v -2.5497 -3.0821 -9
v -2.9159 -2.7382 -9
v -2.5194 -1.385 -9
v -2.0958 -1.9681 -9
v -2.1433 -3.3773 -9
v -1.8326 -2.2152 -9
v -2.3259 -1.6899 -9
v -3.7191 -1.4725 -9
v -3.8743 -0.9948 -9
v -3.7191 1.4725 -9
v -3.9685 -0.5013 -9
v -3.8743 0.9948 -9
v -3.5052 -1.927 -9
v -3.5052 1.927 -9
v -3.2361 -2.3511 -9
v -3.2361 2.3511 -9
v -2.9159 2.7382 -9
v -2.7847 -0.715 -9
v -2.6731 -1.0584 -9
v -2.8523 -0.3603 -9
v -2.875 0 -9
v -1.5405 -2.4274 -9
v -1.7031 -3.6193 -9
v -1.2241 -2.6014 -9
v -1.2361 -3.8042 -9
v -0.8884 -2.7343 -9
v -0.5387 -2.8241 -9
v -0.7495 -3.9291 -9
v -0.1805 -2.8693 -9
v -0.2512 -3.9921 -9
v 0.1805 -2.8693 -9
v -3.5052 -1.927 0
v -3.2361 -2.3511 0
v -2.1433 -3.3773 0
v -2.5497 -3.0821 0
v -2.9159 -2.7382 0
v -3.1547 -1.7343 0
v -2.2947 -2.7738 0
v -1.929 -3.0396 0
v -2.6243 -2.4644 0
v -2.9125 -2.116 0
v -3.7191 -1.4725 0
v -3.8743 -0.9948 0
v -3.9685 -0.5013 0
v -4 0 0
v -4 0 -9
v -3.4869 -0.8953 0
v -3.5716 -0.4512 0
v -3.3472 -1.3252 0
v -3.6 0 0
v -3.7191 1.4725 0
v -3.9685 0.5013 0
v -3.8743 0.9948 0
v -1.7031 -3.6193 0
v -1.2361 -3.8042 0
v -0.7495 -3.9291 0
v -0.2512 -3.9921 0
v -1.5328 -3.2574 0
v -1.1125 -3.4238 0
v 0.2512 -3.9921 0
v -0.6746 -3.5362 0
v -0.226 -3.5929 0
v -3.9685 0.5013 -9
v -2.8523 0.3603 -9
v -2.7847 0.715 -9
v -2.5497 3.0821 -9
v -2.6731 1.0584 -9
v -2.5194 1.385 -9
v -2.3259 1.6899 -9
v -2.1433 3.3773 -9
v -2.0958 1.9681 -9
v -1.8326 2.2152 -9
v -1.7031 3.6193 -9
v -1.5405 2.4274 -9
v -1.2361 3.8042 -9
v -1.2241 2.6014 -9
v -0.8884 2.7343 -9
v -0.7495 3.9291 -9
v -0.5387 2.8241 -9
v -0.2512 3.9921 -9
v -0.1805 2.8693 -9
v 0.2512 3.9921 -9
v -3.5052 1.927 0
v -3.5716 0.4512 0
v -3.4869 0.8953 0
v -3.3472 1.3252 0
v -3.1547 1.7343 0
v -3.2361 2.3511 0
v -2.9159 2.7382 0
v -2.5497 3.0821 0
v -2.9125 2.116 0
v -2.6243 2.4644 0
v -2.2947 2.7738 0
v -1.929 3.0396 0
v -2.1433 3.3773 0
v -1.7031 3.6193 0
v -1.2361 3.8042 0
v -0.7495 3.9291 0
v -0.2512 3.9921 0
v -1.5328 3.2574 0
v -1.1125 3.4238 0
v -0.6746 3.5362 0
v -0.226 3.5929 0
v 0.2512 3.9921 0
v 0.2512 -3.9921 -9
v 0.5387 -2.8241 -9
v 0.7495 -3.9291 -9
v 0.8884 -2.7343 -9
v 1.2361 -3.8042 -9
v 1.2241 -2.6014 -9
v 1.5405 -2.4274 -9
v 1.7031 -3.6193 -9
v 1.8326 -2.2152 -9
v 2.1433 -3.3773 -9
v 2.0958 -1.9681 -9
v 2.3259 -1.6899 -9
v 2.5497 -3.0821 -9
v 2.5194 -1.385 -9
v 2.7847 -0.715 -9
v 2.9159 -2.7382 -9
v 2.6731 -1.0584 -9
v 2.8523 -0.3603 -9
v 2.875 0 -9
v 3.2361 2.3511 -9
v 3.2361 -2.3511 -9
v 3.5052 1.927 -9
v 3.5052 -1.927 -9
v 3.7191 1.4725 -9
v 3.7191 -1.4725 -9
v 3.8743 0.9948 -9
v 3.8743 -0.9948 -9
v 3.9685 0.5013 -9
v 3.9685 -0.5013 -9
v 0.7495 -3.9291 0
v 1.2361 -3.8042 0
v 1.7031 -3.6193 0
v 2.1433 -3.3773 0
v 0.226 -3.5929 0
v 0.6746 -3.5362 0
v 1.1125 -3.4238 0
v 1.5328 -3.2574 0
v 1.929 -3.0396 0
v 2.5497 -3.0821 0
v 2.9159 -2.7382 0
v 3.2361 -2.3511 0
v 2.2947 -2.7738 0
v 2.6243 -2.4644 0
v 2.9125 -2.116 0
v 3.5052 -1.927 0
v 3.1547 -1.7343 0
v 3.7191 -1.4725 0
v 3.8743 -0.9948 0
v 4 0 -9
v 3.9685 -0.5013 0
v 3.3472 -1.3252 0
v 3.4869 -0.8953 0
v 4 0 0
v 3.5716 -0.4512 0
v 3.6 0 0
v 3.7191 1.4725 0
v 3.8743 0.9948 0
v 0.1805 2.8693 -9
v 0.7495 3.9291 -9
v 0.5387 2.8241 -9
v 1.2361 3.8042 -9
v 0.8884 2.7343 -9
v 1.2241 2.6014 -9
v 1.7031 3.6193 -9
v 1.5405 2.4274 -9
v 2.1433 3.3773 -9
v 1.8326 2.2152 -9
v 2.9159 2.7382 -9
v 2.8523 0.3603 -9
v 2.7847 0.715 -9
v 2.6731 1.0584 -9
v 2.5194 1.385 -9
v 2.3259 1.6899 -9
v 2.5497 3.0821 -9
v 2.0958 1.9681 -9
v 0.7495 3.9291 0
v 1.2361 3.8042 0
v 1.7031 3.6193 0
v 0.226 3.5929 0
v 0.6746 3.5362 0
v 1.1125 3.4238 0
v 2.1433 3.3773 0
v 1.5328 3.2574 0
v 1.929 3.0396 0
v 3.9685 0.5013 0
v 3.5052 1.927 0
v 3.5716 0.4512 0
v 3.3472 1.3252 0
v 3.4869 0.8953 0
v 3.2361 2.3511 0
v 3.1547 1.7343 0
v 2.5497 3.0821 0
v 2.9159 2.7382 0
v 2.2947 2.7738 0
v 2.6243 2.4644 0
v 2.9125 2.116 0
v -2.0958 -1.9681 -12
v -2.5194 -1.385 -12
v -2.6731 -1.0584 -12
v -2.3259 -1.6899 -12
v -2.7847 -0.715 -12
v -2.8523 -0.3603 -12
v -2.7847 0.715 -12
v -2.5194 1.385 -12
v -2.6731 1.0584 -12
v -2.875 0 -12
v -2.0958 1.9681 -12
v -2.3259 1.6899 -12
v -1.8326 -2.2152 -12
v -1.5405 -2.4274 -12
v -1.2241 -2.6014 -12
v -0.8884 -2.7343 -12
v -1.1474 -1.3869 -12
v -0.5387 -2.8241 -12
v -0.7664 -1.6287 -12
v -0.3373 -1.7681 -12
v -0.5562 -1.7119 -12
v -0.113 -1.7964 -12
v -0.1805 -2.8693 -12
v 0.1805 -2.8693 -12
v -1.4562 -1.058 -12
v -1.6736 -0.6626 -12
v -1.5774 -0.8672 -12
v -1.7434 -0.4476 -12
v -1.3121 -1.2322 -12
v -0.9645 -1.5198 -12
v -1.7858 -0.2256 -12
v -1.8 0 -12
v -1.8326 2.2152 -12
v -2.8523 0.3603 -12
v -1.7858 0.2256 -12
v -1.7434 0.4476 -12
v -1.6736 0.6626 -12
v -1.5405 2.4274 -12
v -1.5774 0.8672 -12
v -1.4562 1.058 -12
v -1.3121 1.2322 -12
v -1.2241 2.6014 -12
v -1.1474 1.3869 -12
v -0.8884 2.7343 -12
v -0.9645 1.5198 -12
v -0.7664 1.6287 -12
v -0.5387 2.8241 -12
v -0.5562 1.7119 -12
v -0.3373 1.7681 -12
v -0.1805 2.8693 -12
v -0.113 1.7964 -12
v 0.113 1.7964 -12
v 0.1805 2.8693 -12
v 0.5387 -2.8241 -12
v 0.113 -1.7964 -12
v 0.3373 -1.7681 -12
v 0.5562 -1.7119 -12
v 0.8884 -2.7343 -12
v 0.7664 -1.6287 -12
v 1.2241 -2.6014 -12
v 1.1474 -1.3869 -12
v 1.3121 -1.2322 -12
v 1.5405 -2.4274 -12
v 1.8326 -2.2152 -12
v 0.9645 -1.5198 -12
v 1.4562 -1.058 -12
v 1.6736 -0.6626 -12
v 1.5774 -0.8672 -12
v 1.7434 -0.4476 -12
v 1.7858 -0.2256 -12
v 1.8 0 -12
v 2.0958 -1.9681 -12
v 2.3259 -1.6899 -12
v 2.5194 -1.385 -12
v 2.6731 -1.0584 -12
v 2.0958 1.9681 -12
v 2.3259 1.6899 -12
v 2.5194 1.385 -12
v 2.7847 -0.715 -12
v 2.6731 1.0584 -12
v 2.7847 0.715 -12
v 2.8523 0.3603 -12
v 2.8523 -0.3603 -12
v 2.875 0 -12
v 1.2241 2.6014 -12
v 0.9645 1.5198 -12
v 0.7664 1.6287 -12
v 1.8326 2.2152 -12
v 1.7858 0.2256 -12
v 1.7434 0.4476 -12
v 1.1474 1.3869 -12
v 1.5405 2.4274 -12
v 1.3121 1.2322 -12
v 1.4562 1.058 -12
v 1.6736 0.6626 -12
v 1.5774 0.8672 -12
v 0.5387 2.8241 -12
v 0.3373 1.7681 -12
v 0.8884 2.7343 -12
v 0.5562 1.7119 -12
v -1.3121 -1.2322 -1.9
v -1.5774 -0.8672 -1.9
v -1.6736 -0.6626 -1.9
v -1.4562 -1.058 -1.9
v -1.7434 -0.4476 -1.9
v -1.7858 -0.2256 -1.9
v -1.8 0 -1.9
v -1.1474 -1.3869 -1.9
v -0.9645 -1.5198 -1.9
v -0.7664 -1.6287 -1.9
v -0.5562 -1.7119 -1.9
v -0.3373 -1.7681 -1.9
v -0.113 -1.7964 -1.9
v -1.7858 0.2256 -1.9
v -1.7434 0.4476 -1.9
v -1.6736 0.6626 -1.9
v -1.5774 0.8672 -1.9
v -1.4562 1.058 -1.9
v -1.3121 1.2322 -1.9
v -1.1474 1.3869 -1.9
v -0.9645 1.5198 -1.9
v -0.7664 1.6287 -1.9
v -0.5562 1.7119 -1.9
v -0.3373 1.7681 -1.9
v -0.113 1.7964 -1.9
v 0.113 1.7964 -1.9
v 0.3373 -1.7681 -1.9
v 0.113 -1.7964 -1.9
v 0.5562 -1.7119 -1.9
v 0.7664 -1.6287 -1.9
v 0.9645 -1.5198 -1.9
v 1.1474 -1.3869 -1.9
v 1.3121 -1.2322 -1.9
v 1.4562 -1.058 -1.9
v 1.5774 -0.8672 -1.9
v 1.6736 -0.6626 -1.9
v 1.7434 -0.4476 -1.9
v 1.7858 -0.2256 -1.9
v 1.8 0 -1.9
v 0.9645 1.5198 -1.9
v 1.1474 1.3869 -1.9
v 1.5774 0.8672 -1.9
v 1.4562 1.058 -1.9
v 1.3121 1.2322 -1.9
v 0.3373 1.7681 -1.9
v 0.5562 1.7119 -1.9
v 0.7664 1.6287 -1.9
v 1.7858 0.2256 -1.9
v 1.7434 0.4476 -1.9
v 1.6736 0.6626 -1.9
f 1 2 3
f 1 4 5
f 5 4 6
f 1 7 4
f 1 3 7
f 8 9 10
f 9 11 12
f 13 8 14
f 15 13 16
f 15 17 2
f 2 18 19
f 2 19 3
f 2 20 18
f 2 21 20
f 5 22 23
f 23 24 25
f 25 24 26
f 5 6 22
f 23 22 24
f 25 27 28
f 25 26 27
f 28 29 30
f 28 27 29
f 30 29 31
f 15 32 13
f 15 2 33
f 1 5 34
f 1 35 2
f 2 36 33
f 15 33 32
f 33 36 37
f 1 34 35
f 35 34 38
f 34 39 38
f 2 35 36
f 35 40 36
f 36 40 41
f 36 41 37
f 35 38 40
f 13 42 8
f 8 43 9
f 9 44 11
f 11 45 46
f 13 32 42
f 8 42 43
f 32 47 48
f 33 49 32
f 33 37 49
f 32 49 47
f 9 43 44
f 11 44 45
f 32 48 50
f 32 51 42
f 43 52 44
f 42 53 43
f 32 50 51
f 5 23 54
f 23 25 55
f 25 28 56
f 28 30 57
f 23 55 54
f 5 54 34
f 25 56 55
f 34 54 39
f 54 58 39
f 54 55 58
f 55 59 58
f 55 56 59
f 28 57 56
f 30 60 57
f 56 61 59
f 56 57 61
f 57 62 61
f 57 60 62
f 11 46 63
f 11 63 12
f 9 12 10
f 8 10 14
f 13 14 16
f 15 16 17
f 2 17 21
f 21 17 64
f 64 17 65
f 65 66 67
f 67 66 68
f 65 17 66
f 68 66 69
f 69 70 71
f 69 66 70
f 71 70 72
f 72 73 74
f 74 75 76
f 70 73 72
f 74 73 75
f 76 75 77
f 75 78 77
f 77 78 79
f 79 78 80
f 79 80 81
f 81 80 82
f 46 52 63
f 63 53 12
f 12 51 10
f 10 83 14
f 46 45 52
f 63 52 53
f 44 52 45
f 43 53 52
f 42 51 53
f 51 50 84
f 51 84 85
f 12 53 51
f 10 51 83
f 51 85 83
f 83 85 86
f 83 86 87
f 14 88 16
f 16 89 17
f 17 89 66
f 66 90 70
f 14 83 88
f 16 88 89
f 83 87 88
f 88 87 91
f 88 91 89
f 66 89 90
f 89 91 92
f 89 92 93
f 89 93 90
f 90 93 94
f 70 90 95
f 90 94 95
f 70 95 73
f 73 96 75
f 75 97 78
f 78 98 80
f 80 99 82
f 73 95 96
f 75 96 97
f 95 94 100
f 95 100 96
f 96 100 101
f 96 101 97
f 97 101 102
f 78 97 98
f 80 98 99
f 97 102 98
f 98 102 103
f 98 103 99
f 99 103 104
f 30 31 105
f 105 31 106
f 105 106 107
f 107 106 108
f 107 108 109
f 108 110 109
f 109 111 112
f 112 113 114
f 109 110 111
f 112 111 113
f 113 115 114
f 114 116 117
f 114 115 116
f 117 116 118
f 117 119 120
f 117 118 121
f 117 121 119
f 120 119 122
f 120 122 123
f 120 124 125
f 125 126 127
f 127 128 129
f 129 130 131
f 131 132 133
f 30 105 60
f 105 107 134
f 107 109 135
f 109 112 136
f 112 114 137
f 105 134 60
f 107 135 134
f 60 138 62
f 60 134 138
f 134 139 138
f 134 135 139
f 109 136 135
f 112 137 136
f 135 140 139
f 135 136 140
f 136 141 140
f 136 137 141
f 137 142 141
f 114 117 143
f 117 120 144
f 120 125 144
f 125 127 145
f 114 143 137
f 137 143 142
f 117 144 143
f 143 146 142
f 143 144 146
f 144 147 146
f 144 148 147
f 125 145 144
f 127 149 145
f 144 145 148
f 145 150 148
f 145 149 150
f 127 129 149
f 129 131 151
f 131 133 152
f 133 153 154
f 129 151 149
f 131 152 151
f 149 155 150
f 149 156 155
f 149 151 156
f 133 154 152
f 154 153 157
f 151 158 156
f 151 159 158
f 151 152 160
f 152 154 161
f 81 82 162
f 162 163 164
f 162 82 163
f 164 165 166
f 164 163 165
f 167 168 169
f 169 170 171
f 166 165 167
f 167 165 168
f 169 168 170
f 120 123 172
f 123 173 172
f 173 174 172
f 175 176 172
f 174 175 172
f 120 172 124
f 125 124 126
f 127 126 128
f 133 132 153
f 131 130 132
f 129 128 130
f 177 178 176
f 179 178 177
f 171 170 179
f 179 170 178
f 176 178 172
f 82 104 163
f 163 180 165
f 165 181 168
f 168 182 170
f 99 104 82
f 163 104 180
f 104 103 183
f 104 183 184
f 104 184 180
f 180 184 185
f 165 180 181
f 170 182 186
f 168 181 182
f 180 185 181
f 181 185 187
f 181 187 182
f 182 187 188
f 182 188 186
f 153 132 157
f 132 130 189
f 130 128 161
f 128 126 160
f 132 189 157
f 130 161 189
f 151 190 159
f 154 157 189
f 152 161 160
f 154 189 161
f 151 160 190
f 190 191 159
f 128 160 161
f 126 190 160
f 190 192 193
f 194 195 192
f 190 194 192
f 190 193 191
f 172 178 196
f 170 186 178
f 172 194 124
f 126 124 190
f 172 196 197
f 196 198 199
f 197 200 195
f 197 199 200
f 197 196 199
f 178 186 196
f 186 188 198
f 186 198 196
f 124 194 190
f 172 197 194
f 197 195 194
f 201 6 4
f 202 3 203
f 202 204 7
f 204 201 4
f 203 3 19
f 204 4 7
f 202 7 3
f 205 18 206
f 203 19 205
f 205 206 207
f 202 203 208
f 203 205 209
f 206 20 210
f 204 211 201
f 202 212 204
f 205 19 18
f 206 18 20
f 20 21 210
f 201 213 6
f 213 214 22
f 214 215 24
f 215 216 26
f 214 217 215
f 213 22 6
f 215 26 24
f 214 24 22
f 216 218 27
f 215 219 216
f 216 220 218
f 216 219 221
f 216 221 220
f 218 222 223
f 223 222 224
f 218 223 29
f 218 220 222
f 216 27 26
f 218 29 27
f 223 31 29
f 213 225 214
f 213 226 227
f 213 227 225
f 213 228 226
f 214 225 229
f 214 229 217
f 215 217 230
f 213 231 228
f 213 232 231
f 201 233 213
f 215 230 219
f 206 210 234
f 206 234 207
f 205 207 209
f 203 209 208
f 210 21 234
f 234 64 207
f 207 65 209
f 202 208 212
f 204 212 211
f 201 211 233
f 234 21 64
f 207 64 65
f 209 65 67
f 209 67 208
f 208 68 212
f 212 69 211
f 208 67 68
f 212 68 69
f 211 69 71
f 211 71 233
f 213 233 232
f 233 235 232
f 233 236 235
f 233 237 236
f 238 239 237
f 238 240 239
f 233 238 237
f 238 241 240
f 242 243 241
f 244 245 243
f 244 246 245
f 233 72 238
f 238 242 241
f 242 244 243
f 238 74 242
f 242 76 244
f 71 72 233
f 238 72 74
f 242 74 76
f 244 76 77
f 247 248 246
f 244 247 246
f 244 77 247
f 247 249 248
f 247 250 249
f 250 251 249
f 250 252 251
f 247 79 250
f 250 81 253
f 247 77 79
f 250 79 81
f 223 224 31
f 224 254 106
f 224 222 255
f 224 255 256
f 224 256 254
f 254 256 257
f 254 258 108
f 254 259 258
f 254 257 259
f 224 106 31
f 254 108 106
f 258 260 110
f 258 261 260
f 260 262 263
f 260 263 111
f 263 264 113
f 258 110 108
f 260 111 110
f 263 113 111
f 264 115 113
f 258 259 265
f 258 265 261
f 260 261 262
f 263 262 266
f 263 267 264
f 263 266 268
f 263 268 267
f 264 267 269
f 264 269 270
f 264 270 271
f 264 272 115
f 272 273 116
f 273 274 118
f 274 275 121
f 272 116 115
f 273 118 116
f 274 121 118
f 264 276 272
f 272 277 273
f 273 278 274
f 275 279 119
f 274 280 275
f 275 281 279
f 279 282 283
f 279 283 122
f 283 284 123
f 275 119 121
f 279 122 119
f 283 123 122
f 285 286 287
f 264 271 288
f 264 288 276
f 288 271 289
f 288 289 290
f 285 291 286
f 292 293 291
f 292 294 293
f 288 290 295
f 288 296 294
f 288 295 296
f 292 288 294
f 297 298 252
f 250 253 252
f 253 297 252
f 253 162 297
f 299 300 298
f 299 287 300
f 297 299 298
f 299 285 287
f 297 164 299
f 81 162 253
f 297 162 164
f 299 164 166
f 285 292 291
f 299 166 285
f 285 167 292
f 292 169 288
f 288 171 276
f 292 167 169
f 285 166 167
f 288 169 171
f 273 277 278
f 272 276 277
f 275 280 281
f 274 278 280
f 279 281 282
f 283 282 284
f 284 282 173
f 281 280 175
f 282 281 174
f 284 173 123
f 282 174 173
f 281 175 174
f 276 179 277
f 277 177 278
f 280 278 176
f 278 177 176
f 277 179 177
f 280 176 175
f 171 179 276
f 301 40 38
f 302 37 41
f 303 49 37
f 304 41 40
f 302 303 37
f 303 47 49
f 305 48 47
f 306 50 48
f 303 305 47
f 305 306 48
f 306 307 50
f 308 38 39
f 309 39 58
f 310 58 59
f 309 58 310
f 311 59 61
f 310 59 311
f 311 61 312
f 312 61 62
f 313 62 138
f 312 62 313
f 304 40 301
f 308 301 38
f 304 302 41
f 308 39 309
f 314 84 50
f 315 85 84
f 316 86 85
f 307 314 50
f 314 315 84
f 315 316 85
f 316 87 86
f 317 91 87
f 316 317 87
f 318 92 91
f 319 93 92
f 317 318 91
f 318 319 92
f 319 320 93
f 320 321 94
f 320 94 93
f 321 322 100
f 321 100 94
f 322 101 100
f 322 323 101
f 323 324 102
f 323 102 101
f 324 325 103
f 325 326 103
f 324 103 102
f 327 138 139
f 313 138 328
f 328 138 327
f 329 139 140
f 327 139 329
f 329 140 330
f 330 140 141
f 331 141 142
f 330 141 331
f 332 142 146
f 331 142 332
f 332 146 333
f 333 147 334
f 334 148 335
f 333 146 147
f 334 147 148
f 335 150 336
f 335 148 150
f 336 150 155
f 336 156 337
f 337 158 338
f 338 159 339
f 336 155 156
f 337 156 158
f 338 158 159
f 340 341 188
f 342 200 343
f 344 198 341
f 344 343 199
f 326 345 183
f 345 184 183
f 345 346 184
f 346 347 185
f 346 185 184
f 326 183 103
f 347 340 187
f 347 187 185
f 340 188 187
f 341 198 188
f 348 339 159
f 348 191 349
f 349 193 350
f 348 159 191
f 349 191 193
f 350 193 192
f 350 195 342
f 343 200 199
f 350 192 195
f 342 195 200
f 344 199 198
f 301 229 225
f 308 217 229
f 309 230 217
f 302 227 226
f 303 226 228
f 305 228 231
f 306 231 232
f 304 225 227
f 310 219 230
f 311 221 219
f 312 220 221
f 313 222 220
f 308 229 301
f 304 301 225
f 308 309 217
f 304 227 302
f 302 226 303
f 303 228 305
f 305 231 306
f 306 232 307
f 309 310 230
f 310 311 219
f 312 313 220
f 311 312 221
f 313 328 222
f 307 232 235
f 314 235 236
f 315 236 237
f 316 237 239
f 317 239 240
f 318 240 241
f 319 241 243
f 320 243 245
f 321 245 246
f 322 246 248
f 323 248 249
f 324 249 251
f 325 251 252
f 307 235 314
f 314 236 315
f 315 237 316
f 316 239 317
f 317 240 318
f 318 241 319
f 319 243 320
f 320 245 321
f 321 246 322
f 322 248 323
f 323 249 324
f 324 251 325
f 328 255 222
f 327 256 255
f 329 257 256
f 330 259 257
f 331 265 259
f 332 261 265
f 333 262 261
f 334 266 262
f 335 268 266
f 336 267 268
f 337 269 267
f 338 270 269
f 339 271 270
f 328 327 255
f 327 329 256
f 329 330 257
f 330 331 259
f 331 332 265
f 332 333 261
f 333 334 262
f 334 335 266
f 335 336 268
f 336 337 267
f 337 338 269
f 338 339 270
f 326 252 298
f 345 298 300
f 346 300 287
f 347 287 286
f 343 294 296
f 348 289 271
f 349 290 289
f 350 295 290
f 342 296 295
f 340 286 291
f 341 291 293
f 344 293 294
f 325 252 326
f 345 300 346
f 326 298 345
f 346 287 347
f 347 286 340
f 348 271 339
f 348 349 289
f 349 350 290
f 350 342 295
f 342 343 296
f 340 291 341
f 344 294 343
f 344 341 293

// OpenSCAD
$fn = 50;

difference() {
	union() {
		translate(v = [0, 0, -9.0]) {
			cylinder(h = 9, r = 4.0);
		}
		#translate(v = [0, 0, -12.0]) {
			cylinder(h = 12, r = 2.875);
		}
	}
	union() {
		translate(v = [0, 0, 0]) {
			rotate(a = [0, 0, 0]) {
				difference() {
					union() {
						translate(v = [0, 0, -12.0]) {
							cylinder(h = 12, r = 1.5);
						}
						translate(v = [0, 0, -1.9]) {
							cylinder(h = 1.9, r1 = 1.8, r2 = 3.6);
						}
						translate(v = [0, 0, -12.0]) {
							cylinder(h = 12, r = 1.8);
						}
						translate(v = [0, 0, -12.0]) {
							cylinder(h = 12, r = 1.5);
						}
					}
					union();
				}
			}
		}
	}
}
